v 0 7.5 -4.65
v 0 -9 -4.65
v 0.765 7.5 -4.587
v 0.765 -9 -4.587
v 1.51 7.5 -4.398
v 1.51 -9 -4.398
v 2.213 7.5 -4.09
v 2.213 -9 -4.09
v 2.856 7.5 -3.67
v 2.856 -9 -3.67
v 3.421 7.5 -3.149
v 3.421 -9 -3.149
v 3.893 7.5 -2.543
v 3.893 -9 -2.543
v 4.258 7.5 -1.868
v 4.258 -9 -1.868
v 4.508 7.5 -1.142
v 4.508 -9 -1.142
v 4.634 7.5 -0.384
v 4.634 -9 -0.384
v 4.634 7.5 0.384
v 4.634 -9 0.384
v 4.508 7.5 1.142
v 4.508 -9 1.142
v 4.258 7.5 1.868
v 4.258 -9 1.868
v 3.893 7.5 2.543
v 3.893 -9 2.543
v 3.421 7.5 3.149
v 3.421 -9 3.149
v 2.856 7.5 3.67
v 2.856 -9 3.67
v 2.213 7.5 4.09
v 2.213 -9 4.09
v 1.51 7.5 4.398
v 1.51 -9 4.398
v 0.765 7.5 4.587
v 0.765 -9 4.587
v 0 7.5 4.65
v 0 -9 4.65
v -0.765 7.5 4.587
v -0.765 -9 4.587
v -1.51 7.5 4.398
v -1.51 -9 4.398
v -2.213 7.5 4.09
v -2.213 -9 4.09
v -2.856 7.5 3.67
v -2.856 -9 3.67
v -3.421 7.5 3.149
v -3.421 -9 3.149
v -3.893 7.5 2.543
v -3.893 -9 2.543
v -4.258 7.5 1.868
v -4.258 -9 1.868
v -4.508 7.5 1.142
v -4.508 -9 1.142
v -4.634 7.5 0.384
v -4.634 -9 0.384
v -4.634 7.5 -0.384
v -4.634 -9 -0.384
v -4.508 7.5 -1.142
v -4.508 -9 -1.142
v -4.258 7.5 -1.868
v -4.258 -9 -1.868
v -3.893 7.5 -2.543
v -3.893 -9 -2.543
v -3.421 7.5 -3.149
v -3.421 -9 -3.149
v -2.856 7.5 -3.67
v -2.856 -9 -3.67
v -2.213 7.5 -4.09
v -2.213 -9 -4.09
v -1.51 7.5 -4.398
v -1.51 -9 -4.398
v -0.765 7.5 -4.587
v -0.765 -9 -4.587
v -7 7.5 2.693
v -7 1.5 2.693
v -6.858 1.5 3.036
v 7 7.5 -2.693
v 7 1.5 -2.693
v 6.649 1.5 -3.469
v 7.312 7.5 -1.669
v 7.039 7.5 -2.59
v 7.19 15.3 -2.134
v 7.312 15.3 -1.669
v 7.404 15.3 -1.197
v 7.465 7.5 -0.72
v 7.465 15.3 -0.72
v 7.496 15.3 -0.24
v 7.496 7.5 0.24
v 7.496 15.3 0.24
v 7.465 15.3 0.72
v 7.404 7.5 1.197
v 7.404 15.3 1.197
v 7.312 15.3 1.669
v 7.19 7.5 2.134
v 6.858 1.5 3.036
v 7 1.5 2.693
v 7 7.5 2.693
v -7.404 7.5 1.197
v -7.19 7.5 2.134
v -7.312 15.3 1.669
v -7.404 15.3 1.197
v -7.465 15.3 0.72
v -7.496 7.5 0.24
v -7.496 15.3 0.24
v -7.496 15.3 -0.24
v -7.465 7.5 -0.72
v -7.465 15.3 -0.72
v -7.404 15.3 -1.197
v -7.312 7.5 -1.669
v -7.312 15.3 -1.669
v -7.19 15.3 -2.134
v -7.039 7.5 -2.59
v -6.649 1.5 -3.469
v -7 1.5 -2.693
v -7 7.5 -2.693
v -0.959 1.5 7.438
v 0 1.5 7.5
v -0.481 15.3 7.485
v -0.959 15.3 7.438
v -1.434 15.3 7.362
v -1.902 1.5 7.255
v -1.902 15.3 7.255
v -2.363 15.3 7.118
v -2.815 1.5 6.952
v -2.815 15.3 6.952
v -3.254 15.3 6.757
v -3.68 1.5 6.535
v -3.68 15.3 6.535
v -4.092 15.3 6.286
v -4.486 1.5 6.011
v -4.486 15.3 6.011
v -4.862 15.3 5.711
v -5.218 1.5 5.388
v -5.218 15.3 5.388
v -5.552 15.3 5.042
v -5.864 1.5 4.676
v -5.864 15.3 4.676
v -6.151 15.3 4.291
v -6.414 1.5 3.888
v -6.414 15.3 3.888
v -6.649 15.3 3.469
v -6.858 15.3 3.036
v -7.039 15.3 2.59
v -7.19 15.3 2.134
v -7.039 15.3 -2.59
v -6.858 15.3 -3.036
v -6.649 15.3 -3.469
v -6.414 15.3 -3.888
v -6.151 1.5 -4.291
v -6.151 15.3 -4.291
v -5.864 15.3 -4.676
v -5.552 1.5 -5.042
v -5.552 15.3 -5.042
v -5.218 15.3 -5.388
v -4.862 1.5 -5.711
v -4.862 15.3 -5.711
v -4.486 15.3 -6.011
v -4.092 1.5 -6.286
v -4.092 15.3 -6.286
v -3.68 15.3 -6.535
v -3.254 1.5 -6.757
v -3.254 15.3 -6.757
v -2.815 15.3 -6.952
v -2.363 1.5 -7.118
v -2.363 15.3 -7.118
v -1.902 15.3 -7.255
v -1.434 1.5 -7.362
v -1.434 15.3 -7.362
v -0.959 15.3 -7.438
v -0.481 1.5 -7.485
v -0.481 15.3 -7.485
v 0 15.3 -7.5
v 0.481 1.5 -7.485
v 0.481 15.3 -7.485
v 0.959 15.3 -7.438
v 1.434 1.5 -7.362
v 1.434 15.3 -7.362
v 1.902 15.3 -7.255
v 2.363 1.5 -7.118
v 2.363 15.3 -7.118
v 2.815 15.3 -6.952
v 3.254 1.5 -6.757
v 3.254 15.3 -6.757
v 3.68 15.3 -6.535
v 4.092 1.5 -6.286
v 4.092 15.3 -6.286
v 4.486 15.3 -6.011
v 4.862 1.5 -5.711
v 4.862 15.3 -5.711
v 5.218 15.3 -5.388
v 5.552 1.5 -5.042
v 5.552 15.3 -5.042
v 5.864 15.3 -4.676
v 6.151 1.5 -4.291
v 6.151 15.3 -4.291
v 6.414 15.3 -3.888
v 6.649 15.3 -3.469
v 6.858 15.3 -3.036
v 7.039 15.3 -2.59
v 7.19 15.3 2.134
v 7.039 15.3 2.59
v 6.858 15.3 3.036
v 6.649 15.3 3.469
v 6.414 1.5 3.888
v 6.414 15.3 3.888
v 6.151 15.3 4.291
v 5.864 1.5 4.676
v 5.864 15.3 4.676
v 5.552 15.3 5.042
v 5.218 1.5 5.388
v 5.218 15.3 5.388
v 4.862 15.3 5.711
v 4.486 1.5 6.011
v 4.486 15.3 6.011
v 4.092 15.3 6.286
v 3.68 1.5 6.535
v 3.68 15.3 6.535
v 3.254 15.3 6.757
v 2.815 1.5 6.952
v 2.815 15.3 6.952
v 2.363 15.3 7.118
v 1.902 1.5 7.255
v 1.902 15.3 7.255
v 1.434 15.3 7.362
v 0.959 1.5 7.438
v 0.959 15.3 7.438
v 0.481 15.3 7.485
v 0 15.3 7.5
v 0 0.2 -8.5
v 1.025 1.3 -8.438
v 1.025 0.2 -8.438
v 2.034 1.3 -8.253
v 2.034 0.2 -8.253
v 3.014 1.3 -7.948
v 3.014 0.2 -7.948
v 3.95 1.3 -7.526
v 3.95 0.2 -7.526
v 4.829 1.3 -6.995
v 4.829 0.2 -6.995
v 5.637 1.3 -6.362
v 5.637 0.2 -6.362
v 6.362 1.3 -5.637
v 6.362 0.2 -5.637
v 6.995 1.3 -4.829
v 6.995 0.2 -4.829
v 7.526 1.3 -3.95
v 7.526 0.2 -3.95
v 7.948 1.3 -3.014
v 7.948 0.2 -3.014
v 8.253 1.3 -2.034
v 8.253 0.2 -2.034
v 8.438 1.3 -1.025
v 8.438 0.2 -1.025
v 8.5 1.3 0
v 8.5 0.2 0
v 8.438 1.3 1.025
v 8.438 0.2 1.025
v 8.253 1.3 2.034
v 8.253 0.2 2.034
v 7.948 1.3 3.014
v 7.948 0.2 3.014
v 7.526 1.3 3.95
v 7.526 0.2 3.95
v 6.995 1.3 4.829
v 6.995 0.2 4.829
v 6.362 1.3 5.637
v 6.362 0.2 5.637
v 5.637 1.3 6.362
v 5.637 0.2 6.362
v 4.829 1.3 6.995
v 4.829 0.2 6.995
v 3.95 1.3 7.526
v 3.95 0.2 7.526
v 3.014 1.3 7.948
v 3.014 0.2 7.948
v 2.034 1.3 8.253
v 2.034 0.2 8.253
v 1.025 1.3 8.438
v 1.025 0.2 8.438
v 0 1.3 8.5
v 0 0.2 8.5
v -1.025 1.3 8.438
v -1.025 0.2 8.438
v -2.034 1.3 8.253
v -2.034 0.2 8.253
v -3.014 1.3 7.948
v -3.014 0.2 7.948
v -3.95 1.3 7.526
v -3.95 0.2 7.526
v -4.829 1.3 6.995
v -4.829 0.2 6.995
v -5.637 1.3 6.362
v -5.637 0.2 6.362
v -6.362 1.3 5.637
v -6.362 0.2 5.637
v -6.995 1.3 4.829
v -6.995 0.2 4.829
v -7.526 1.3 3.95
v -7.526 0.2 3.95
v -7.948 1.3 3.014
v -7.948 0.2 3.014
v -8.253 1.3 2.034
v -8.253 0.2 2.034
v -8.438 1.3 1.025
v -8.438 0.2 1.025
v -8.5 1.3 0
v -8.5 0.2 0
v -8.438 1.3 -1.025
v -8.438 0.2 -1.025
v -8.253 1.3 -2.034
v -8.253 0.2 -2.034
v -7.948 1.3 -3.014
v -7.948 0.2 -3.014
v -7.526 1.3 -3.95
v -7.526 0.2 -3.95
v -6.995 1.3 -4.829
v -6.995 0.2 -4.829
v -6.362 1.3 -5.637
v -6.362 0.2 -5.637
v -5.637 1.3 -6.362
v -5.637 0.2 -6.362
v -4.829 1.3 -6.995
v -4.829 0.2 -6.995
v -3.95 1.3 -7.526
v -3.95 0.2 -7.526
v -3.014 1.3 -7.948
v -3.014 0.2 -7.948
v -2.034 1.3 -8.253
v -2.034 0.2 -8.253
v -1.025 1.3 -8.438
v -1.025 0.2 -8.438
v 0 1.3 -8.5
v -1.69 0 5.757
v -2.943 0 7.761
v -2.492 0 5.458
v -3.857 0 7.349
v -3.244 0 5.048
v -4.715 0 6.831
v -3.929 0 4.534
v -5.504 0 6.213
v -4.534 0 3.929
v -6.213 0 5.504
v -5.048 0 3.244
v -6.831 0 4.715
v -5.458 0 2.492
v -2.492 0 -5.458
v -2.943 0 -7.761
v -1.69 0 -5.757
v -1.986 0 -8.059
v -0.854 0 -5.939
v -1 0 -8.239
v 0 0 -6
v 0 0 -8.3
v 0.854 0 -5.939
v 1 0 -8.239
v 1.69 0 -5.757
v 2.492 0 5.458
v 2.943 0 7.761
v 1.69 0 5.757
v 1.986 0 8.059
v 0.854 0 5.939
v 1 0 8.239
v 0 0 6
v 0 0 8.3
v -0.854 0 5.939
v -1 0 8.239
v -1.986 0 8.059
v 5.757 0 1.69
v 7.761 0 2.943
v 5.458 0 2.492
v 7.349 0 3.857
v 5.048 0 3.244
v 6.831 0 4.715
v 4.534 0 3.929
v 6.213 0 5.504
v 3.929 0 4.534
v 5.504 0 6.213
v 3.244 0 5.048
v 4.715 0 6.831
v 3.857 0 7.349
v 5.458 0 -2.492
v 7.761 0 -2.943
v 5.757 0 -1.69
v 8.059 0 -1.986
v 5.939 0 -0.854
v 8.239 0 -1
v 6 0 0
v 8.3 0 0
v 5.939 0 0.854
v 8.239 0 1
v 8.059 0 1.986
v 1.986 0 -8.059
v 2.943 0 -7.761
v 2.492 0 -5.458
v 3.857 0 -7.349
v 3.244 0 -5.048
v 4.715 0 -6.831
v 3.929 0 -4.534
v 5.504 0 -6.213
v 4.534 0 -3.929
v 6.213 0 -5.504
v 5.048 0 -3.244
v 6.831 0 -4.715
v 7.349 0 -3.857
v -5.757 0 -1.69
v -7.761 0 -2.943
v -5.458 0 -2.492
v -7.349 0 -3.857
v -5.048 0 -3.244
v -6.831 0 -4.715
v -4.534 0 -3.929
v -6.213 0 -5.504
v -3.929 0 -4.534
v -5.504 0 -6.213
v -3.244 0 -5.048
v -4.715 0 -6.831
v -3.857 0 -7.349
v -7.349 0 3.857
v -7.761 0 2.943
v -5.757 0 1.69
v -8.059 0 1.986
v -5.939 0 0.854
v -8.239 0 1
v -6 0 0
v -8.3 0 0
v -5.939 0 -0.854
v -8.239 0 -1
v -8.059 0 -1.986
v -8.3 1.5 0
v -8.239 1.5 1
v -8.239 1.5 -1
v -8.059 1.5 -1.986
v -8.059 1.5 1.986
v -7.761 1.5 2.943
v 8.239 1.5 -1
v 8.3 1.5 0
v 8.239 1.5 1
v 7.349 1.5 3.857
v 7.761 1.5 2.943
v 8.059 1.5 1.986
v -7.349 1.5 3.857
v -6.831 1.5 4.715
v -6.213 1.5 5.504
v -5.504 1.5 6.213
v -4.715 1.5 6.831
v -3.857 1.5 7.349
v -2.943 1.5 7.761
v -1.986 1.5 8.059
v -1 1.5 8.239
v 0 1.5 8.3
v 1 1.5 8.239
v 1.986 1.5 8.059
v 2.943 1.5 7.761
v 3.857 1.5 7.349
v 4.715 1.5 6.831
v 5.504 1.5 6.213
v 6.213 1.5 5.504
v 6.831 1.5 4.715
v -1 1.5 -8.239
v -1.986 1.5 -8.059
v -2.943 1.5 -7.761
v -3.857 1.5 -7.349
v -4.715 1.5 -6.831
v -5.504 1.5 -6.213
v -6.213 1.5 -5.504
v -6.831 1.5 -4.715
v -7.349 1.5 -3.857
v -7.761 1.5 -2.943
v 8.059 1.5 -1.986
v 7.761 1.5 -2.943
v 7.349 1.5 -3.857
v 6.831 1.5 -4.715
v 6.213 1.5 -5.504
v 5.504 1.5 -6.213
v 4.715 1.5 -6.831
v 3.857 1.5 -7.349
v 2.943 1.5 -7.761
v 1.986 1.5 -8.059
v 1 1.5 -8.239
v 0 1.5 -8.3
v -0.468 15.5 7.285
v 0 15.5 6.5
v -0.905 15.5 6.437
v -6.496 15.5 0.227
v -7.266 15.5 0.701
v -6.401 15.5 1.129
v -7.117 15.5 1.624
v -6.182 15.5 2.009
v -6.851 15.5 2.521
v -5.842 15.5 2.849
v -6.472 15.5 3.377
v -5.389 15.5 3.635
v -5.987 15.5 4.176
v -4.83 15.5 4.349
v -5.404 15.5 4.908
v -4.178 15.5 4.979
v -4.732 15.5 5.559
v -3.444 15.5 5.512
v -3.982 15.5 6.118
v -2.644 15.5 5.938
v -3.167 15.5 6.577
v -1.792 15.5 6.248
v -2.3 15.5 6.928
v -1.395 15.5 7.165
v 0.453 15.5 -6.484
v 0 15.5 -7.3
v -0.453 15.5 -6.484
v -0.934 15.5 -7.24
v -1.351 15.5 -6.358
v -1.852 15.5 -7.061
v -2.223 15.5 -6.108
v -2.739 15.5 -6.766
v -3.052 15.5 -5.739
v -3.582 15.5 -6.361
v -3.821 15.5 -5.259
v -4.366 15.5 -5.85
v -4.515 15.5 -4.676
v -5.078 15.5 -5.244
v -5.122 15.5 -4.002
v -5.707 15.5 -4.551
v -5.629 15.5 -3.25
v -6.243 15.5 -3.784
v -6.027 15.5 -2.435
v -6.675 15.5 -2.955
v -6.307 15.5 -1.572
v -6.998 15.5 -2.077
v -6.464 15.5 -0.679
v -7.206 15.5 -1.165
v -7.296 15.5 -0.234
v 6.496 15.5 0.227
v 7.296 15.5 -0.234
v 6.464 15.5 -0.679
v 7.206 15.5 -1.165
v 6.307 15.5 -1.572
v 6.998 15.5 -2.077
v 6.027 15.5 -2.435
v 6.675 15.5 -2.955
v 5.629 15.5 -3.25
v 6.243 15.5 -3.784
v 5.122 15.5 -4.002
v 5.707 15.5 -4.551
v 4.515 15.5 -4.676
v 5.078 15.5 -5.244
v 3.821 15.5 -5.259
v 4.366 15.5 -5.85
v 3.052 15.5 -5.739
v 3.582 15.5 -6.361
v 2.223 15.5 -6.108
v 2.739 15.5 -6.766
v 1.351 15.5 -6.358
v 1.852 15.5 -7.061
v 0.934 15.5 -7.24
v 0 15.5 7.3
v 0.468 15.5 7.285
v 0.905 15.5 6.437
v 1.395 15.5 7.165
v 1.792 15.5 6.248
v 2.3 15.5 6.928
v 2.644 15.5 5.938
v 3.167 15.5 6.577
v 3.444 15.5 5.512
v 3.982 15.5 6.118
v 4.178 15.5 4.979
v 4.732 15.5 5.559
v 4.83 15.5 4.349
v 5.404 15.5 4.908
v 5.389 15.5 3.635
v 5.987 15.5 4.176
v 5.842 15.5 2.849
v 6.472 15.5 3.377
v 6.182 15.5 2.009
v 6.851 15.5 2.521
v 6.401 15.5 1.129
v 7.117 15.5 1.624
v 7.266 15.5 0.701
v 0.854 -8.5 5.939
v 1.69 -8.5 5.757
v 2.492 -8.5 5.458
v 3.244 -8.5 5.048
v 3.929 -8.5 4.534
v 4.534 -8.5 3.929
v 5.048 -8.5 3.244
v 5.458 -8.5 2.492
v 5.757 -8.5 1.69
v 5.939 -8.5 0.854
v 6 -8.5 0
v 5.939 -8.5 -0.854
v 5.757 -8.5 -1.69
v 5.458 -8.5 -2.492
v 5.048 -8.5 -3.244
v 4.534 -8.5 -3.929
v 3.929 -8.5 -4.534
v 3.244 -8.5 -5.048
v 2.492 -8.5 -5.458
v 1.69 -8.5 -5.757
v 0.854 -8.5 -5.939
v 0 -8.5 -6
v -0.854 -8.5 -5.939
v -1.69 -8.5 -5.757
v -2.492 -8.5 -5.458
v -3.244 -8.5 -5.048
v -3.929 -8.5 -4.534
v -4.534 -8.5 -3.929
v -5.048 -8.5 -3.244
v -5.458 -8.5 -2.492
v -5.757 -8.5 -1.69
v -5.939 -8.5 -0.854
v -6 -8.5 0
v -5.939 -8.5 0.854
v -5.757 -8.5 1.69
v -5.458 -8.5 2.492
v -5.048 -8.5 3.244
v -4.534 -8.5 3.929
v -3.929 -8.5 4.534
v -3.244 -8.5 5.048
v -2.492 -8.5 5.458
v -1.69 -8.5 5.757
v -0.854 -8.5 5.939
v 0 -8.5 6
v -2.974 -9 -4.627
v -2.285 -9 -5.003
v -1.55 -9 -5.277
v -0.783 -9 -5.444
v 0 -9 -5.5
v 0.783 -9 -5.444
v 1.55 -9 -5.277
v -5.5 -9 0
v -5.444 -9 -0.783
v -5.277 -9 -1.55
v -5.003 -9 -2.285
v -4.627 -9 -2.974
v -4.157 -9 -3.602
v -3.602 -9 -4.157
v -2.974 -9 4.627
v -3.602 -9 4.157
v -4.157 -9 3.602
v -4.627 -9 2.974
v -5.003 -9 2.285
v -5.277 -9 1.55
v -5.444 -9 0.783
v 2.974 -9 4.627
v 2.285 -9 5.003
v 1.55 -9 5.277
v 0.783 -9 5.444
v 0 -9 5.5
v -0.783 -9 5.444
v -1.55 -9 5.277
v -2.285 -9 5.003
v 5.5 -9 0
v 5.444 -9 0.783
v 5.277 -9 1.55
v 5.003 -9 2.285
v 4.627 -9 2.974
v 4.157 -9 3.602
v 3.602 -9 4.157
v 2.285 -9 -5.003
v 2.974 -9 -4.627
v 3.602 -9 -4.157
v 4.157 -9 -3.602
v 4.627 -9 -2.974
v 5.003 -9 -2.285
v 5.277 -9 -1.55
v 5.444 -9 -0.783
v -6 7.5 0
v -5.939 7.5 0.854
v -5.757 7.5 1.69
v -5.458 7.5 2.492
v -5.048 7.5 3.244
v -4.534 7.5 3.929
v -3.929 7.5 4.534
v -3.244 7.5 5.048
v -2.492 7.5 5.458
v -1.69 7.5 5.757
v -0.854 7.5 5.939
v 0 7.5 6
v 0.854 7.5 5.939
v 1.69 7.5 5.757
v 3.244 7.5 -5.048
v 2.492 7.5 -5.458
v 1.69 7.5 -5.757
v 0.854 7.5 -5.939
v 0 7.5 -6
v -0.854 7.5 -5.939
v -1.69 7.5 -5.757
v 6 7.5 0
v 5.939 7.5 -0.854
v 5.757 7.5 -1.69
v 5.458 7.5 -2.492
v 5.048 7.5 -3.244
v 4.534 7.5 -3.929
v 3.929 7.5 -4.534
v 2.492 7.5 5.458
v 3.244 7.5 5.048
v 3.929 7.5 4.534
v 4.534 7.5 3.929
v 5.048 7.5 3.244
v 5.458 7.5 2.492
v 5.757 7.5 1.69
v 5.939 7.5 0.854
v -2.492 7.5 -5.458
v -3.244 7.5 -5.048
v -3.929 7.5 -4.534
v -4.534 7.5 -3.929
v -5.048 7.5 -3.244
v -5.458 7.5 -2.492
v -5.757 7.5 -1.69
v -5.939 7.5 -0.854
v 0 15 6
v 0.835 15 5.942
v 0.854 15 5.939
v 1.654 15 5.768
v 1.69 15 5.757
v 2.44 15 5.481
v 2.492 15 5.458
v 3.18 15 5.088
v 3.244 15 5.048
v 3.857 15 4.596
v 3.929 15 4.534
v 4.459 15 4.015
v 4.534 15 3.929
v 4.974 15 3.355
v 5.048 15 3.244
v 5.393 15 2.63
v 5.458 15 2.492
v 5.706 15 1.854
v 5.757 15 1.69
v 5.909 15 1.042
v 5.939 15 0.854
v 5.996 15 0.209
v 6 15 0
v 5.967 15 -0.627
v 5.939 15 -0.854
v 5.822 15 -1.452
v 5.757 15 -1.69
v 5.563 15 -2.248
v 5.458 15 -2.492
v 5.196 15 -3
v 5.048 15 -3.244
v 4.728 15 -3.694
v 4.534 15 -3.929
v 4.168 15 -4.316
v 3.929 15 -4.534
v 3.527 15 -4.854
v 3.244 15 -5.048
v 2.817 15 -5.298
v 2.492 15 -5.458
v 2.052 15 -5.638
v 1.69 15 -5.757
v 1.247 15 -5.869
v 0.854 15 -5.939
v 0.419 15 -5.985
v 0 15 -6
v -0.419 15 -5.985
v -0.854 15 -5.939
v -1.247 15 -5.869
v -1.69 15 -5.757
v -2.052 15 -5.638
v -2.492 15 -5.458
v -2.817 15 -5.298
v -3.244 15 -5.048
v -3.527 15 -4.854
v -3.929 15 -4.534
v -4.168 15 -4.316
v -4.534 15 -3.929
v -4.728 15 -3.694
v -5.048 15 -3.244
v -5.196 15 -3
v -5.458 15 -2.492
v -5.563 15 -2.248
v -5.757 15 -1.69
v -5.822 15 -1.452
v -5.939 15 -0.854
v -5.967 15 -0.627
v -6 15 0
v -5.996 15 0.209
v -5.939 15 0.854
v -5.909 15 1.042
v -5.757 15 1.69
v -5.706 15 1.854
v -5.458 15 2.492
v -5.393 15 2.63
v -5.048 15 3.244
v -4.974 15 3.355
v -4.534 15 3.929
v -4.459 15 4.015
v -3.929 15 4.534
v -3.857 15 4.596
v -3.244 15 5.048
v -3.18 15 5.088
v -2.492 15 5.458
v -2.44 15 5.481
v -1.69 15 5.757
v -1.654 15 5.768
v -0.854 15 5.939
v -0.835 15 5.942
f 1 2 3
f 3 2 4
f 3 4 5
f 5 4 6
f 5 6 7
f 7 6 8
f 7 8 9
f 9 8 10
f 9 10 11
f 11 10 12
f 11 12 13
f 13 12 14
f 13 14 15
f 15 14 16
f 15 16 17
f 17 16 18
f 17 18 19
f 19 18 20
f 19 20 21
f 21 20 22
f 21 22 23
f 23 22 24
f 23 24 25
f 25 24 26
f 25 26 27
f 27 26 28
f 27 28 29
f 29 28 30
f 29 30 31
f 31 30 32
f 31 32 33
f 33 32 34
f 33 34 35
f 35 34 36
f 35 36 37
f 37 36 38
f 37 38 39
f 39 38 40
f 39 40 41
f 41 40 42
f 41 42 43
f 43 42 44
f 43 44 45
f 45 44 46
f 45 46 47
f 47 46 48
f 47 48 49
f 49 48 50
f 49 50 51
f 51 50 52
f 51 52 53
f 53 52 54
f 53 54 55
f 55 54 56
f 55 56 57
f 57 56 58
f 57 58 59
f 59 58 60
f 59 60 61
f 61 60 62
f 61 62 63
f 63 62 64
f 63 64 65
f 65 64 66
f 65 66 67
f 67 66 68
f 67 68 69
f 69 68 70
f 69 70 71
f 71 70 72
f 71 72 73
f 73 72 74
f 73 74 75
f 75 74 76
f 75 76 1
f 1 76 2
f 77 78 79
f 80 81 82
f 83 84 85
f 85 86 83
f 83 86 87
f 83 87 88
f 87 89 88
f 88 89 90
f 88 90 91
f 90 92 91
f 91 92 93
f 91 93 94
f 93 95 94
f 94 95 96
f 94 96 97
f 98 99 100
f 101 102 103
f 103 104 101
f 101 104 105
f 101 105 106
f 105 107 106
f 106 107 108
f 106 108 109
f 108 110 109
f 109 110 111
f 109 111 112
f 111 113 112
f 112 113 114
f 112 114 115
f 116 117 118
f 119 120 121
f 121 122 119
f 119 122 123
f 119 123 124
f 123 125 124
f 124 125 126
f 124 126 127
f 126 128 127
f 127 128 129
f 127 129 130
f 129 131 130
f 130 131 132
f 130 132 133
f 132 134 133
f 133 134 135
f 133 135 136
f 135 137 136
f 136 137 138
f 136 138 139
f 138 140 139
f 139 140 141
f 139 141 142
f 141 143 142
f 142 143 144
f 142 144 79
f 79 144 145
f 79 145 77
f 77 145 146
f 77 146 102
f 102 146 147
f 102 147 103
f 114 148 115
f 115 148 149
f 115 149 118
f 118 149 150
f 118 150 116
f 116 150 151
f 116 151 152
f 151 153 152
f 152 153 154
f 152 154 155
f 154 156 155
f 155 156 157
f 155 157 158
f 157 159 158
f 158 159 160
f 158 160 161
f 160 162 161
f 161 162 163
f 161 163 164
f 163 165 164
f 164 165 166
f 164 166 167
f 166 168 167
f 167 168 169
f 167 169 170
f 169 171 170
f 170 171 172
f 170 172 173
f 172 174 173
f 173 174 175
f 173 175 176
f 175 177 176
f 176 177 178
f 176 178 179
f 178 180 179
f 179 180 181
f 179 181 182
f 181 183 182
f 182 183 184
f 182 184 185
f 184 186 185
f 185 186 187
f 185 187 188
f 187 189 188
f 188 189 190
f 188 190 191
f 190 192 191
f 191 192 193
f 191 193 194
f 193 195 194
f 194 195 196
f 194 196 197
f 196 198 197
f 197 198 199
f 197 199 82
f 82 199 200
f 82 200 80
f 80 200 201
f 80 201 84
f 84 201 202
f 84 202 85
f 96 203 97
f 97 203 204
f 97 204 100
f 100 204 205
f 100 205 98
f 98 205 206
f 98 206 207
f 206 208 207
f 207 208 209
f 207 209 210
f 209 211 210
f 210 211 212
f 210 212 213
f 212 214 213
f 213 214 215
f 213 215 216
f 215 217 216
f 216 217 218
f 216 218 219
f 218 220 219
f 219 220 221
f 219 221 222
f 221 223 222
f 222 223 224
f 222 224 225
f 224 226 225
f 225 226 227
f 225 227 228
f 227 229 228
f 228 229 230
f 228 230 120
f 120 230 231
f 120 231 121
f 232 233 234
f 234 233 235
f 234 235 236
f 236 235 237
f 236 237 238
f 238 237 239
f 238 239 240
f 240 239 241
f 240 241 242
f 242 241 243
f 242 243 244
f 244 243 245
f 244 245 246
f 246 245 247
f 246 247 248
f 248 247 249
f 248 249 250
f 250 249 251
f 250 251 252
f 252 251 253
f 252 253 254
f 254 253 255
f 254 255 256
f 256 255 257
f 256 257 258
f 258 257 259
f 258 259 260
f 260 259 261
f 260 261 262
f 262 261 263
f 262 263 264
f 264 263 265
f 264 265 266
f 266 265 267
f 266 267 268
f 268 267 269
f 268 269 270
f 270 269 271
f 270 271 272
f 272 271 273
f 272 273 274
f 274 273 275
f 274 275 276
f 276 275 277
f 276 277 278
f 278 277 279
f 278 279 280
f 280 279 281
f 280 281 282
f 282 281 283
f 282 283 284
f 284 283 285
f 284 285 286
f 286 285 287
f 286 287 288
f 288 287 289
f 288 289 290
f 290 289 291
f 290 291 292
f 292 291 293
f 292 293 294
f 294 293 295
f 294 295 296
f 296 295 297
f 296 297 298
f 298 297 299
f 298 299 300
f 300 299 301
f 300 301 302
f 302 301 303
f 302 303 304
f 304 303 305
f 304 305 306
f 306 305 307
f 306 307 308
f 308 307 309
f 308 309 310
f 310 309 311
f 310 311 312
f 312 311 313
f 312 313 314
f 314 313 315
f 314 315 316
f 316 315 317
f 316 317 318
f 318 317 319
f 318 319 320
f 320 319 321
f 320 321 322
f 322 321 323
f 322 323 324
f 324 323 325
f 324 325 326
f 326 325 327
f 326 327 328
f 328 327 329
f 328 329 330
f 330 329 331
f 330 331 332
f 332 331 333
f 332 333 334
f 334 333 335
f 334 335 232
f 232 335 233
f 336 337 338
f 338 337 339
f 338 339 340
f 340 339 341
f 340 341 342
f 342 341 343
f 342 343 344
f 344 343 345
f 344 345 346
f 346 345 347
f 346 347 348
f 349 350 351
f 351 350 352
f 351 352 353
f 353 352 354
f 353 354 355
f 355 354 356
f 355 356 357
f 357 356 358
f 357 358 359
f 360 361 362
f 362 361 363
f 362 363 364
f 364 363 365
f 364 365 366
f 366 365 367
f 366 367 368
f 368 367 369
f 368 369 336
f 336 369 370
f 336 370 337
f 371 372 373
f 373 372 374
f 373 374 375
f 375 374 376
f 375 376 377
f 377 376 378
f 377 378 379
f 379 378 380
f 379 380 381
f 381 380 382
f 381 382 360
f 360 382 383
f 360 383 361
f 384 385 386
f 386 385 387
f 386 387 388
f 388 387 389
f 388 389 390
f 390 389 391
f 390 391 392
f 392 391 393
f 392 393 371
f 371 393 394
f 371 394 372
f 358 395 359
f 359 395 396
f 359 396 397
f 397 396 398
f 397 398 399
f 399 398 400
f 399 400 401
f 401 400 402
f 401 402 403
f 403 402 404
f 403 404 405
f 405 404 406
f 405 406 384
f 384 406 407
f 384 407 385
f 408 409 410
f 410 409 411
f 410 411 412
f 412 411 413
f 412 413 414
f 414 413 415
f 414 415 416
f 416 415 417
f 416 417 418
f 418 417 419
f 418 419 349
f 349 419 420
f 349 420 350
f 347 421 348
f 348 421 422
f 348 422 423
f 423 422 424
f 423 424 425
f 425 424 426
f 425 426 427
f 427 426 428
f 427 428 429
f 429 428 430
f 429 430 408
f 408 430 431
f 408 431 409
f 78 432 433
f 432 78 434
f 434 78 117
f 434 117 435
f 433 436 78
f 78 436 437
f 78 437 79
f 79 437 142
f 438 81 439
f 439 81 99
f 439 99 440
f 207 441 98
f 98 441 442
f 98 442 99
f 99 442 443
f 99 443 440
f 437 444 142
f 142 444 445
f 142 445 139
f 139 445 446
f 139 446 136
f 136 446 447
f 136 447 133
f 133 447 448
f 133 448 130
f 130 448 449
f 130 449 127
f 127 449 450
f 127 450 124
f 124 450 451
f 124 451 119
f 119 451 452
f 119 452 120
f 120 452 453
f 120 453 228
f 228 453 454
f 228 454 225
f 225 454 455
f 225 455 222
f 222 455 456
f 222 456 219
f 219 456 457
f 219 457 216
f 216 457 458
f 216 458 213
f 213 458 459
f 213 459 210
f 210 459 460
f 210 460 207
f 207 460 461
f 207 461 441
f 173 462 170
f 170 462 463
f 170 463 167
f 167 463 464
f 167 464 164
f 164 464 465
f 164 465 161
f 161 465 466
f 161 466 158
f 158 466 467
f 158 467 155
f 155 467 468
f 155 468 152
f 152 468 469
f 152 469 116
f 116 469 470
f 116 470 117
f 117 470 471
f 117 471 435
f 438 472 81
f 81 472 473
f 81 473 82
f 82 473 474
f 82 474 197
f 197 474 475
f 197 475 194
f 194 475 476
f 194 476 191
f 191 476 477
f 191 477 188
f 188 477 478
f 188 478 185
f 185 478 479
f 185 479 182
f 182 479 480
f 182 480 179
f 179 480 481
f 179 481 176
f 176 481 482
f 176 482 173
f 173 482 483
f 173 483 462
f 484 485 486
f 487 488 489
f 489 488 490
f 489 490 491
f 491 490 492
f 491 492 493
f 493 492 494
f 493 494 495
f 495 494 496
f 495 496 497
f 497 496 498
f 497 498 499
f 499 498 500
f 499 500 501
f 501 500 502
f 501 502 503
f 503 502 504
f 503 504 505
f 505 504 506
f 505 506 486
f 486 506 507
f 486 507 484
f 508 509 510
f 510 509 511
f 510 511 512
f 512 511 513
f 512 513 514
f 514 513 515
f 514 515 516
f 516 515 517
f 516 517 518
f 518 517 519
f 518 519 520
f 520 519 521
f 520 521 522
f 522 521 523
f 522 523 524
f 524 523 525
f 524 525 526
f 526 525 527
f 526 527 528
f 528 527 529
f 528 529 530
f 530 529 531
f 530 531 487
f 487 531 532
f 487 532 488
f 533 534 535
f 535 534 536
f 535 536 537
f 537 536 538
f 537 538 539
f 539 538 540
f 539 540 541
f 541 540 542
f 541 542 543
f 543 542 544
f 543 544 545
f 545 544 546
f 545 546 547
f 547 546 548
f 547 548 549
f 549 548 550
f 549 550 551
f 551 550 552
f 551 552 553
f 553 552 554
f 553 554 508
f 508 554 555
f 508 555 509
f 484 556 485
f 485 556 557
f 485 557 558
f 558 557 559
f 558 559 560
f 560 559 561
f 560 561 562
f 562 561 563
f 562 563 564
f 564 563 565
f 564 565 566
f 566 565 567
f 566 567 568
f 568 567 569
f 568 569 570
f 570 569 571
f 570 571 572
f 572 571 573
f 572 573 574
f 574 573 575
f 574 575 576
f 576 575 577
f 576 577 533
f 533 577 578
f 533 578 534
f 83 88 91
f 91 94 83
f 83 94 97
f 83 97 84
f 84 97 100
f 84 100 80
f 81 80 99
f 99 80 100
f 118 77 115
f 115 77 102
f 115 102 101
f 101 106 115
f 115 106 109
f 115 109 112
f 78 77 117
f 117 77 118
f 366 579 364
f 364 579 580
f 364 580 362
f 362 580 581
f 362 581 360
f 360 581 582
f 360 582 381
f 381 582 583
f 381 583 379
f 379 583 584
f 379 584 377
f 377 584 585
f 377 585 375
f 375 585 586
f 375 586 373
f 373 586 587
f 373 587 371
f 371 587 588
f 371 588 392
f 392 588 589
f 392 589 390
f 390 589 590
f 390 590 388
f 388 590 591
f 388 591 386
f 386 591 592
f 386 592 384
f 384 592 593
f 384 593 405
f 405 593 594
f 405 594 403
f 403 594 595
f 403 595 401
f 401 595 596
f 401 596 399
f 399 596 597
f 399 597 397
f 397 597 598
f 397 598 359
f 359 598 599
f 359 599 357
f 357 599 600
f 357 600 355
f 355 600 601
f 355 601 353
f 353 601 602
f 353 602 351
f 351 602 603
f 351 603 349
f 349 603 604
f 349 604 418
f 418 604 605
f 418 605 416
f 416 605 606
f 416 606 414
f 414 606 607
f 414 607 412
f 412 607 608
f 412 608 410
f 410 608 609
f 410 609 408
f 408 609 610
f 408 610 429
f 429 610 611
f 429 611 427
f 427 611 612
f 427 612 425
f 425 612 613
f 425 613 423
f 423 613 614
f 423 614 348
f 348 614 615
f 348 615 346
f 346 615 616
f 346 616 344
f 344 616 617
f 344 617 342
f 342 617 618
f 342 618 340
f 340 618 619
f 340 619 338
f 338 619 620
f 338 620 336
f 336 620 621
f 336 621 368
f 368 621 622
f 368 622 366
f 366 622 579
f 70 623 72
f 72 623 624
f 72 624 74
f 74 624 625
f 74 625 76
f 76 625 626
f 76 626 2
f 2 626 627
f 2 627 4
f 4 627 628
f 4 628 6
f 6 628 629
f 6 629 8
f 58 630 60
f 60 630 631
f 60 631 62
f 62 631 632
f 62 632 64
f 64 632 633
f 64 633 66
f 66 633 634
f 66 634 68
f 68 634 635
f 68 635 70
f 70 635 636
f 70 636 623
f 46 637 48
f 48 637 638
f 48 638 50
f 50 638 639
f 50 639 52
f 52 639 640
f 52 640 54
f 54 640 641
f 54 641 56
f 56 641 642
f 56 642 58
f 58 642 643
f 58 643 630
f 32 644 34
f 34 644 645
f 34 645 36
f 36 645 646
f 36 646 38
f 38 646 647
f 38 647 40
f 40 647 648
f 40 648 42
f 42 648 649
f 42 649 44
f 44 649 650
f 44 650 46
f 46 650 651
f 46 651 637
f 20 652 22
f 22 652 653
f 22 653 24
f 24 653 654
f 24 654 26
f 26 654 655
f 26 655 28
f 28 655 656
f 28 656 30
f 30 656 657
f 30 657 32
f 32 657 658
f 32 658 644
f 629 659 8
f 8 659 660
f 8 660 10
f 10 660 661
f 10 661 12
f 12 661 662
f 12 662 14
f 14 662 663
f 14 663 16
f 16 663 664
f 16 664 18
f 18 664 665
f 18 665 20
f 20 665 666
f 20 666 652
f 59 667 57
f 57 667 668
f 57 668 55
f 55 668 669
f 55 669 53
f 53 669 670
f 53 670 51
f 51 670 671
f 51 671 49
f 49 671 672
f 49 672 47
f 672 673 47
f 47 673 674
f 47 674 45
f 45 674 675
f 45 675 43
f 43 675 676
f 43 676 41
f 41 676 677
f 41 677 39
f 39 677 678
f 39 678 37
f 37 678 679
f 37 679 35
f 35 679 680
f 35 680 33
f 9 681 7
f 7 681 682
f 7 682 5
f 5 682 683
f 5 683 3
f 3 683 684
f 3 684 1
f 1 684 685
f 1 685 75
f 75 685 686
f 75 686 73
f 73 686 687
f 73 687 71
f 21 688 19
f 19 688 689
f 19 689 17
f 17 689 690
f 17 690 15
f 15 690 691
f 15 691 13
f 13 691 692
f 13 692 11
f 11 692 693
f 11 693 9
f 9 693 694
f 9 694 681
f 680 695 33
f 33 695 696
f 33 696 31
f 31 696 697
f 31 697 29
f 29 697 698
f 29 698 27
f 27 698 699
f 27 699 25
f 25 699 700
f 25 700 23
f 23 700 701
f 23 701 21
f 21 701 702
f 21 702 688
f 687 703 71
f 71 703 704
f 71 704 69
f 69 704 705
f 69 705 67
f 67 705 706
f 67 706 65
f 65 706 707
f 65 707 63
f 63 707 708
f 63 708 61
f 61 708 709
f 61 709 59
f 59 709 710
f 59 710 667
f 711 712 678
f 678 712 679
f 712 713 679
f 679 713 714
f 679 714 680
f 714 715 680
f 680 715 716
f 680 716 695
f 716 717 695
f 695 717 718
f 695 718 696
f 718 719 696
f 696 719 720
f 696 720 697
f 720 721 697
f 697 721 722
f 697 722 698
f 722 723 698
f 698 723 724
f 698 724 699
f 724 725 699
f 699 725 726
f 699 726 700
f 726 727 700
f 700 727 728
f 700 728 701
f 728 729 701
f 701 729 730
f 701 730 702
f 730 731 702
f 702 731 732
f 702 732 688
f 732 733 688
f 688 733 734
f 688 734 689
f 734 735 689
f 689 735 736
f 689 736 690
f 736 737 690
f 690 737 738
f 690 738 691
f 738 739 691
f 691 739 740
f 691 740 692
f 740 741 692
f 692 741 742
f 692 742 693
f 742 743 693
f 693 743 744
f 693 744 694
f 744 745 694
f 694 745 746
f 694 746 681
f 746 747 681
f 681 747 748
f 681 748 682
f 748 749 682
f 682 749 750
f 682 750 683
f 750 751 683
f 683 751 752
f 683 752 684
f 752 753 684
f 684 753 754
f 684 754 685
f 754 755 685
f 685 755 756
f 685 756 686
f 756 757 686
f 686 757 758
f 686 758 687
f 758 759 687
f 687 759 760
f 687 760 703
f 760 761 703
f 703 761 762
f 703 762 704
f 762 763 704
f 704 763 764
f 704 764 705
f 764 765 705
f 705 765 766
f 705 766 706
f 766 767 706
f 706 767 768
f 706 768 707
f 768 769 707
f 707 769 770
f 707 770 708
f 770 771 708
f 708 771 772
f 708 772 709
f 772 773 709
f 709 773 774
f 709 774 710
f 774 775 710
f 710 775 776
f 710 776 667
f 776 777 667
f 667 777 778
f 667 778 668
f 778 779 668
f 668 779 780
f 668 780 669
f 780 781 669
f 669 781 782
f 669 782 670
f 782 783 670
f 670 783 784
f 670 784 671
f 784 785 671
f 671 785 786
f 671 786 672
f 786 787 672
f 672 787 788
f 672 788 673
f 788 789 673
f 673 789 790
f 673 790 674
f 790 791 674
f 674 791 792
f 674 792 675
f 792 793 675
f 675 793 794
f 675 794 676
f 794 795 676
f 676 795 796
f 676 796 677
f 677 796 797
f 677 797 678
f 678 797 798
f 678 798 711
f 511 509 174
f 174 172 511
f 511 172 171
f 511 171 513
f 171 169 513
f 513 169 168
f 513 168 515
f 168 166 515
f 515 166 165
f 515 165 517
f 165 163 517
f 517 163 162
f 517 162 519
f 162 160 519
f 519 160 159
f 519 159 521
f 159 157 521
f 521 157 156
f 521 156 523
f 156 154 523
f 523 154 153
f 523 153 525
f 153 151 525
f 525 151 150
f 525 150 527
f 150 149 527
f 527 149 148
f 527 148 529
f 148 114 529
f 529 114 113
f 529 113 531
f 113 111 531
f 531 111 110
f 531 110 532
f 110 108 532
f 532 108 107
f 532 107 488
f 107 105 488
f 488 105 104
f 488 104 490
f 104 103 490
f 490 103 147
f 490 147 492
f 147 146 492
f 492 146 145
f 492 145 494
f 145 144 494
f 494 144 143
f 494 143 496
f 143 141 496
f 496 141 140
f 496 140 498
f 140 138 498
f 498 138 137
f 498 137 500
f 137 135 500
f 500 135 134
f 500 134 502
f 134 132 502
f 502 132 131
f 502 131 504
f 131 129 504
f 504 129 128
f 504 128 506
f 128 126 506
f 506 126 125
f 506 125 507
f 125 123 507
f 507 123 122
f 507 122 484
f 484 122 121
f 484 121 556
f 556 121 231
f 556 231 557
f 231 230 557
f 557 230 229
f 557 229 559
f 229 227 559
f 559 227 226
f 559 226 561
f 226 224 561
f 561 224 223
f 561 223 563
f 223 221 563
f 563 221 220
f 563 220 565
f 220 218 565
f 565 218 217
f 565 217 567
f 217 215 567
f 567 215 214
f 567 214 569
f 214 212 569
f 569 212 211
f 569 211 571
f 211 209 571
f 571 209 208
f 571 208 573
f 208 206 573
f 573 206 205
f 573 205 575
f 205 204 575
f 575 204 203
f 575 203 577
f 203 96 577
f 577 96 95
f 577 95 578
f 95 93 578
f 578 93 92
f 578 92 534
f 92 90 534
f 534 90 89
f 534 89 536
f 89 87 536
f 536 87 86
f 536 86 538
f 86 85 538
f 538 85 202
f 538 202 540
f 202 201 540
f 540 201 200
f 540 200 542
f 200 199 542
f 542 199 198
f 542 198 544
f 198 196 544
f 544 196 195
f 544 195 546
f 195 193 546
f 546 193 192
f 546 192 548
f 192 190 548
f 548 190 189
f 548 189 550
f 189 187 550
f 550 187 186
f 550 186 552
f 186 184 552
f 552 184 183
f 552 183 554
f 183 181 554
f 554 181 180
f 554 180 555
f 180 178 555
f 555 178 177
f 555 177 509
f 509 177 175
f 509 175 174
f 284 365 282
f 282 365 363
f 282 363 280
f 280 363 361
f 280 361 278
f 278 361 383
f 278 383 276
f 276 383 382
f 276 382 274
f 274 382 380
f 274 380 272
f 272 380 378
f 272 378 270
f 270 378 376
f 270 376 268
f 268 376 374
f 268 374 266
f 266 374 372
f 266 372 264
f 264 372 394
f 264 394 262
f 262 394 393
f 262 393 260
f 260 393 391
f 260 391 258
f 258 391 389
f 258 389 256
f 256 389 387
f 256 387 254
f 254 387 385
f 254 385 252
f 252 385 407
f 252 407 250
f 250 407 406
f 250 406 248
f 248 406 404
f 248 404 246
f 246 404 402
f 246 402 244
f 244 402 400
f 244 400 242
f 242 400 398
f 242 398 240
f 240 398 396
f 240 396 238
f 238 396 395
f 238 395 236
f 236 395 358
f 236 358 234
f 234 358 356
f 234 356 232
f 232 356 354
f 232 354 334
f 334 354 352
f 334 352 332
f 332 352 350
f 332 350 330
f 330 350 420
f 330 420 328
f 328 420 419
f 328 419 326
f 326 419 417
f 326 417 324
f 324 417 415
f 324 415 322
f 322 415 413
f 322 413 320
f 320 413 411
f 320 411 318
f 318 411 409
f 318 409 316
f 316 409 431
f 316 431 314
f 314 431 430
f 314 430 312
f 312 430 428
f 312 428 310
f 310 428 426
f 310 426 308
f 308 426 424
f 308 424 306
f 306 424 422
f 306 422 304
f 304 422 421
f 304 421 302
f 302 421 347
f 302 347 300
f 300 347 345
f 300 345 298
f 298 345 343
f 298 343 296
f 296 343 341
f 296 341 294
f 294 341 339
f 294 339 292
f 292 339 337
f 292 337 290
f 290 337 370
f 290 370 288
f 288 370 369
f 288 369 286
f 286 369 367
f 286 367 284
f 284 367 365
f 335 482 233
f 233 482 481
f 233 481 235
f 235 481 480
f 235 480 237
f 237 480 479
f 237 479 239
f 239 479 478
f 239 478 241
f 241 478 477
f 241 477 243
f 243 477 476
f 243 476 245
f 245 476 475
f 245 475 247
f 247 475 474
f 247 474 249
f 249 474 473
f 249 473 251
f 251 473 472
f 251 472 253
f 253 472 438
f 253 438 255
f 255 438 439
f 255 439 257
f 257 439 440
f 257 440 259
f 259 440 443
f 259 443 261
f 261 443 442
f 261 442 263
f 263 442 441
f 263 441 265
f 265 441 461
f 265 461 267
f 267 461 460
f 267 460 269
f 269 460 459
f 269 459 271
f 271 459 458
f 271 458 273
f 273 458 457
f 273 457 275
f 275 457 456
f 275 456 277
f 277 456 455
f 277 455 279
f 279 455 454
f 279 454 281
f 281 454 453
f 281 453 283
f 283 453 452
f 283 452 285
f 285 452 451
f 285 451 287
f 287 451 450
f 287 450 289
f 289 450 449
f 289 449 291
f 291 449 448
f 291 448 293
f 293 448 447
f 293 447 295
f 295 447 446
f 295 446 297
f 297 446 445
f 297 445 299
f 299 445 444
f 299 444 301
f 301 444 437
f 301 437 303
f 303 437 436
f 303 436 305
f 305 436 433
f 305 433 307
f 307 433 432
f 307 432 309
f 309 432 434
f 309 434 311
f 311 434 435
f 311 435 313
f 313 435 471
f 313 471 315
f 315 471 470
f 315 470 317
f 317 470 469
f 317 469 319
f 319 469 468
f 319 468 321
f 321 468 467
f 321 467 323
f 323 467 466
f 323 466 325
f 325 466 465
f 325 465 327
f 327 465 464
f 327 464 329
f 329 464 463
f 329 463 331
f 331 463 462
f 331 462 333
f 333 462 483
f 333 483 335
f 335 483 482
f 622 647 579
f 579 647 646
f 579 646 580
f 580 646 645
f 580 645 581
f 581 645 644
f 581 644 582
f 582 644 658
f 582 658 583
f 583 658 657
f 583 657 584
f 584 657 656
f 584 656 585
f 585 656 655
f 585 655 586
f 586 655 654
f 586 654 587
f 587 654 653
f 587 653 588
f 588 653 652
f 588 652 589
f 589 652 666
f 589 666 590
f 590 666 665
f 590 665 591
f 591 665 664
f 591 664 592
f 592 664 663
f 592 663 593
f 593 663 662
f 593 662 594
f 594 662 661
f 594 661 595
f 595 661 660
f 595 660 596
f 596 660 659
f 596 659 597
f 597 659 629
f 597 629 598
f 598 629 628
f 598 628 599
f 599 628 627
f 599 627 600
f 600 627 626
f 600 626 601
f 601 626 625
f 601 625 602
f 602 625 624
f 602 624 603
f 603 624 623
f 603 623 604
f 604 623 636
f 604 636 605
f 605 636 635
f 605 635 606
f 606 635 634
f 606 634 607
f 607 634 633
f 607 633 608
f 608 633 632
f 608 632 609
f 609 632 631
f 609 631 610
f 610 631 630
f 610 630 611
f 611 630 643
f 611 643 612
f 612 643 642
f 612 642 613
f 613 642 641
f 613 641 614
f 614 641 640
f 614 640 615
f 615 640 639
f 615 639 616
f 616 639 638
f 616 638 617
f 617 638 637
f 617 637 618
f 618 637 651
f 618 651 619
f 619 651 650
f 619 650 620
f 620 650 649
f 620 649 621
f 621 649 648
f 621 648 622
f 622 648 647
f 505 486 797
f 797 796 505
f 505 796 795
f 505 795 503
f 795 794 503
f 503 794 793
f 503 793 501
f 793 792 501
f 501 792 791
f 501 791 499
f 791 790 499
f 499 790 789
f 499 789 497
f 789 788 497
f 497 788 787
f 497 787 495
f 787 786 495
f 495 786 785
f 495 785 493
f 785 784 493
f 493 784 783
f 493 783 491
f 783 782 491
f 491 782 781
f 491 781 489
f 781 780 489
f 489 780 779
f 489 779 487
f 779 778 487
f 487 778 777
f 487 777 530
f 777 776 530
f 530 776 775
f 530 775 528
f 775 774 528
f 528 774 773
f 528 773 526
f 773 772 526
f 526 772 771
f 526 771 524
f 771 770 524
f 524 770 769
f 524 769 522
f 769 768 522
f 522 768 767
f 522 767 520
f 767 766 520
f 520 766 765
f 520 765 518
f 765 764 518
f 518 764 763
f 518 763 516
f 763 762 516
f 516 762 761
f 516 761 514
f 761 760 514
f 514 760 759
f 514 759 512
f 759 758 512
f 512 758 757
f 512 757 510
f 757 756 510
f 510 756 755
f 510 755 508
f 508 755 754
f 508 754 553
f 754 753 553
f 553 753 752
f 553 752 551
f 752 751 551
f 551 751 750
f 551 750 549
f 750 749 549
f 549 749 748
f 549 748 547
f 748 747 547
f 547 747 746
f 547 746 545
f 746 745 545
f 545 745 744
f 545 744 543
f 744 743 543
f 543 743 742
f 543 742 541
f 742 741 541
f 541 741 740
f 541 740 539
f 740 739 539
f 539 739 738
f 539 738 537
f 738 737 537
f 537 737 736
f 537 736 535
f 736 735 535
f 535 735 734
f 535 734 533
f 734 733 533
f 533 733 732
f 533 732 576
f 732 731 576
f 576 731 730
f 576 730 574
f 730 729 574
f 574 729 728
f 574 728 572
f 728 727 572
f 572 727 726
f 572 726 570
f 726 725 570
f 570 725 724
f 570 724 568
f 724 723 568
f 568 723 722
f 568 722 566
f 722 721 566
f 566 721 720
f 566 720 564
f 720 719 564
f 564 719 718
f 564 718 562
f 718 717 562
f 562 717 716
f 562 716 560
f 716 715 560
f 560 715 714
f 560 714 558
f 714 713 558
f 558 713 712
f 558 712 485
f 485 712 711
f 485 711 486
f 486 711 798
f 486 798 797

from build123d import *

# Parameters (mm, degrees)
SKIZZE1_R             = 8.5
GK_DEPTH              = 15.5
CUT_EXTRUDE_START     = -14
SKIZZE2_R             = 8.5
SKIZZE2_R_2           = 7.5
CUT_EXTRUDE_D15_DEPTH = 14
SKIZZE3_W             = 15
SKIZZE3_H             = 6
SW14_DEPTH            = 0.5
SKIZZE4_R             = 6
AU_ENGEWINDE_DEPTH    = 9
SKIZZE18_R            = 4.65
D9_3MM_DEPTH          = 28.290108098
SKIZZE19_R            = 6
KERNLOCH_D12_DEPTH    = 8
FASE_0_2MM_SIZE       = 0.2
FASE_0_5MM_SIZE       = 0.5


with BuildPart() as part:
    # Skizze1 → GK (new body)
    with BuildSketch(Plane(origin=(0, 0, 0), x_dir=(1, 0, 0), z_dir=(0, 1, 0))):
        with Locations(Location((0, 0, 0), (0, 0, 270))):
            Circle(SKIZZE1_R)
    extrude(amount=GK_DEPTH)

    # Skizze2 → D15 (cut)
    with BuildSketch(Plane(origin=(0, 15.5, 0), x_dir=(1, 0, 0), z_dir=(0, 1, 0)).offset(CUT_EXTRUDE_START)):
        with Locations(Location((0, 0, 0), (0, 0, 270))):
            Circle(SKIZZE2_R)
        with Locations(Location((0, 0, 0), (0, 0, 270))):
            Circle(SKIZZE2_R_2, mode=Mode.SUBTRACT)
    extrude(amount=CUT_EXTRUDE_D15_DEPTH, mode=Mode.SUBTRACT)

    # Skizze3 → SW14 (cut)
    with BuildSketch(Plane(origin=(7.5, 0, 0), x_dir=(0, 0, -1), z_dir=(1, 0, 0))):
        with Locations((0, 4.5)):
            Rectangle(SKIZZE3_W, SKIZZE3_H)
    sw14 = extrude(amount=-SW14_DEPTH, mode=Mode.SUBTRACT)

    # Spiegeln1: SW14 across plane
    add(sw14.mirror(Plane(origin=(0, 0, 0), x_dir=(0, 0, 1), z_dir=(1, 0, 0))), mode=Mode.SUBTRACT)

    # Skizze4 → Außengewinde (add)
    with BuildSketch(Plane.XZ):
        with Locations(Location((0, 0, 0), (0, 0, 270))):
            Circle(SKIZZE4_R)
    extrude(amount=AU_ENGEWINDE_DEPTH)

    # Skizze18 → D9,3mm (cut, through all)
    with BuildSketch(Plane.XZ.offset(9)):
        with Locations(Location((0, 0, 0), (0, 0, 270))):
            Circle(SKIZZE18_R)
    extrude(amount=-D9_3MM_DEPTH, mode=Mode.SUBTRACT)

    # Skizze19 → Kernloch D12 (cut)
    with BuildSketch(Plane(origin=(0, 15.5, 0), x_dir=(1, 0, 0), z_dir=(0, 1, 0))):
        with Locations(Location((0, 0, 0), (0, 0, 90))):
            Circle(SKIZZE19_R)
    extrude(amount=-KERNLOCH_D12_DEPTH, mode=Mode.SUBTRACT)

    # Fase 0,2mm
    fase_0_2mm_edges = [part.edges().sort_by_distance(p)[0] for p in [
        (0, 0, -8.5),
        (0, 1.5, -8.5),
        (0, 15.5, -7.5),
    ]]
    chamfer(fase_0_2mm_edges, length=FASE_0_2MM_SIZE)

    # Fase 0,5mm
    fase_0_5mm_edges = [part.edges().sort_by_distance(p)[0] for p in [
        (0, -9, 6),
        (0, 15.5, 6),
    ]]
    chamfer(fase_0_5mm_edges, length=FASE_0_5MM_SIZE)


solid = part.part
